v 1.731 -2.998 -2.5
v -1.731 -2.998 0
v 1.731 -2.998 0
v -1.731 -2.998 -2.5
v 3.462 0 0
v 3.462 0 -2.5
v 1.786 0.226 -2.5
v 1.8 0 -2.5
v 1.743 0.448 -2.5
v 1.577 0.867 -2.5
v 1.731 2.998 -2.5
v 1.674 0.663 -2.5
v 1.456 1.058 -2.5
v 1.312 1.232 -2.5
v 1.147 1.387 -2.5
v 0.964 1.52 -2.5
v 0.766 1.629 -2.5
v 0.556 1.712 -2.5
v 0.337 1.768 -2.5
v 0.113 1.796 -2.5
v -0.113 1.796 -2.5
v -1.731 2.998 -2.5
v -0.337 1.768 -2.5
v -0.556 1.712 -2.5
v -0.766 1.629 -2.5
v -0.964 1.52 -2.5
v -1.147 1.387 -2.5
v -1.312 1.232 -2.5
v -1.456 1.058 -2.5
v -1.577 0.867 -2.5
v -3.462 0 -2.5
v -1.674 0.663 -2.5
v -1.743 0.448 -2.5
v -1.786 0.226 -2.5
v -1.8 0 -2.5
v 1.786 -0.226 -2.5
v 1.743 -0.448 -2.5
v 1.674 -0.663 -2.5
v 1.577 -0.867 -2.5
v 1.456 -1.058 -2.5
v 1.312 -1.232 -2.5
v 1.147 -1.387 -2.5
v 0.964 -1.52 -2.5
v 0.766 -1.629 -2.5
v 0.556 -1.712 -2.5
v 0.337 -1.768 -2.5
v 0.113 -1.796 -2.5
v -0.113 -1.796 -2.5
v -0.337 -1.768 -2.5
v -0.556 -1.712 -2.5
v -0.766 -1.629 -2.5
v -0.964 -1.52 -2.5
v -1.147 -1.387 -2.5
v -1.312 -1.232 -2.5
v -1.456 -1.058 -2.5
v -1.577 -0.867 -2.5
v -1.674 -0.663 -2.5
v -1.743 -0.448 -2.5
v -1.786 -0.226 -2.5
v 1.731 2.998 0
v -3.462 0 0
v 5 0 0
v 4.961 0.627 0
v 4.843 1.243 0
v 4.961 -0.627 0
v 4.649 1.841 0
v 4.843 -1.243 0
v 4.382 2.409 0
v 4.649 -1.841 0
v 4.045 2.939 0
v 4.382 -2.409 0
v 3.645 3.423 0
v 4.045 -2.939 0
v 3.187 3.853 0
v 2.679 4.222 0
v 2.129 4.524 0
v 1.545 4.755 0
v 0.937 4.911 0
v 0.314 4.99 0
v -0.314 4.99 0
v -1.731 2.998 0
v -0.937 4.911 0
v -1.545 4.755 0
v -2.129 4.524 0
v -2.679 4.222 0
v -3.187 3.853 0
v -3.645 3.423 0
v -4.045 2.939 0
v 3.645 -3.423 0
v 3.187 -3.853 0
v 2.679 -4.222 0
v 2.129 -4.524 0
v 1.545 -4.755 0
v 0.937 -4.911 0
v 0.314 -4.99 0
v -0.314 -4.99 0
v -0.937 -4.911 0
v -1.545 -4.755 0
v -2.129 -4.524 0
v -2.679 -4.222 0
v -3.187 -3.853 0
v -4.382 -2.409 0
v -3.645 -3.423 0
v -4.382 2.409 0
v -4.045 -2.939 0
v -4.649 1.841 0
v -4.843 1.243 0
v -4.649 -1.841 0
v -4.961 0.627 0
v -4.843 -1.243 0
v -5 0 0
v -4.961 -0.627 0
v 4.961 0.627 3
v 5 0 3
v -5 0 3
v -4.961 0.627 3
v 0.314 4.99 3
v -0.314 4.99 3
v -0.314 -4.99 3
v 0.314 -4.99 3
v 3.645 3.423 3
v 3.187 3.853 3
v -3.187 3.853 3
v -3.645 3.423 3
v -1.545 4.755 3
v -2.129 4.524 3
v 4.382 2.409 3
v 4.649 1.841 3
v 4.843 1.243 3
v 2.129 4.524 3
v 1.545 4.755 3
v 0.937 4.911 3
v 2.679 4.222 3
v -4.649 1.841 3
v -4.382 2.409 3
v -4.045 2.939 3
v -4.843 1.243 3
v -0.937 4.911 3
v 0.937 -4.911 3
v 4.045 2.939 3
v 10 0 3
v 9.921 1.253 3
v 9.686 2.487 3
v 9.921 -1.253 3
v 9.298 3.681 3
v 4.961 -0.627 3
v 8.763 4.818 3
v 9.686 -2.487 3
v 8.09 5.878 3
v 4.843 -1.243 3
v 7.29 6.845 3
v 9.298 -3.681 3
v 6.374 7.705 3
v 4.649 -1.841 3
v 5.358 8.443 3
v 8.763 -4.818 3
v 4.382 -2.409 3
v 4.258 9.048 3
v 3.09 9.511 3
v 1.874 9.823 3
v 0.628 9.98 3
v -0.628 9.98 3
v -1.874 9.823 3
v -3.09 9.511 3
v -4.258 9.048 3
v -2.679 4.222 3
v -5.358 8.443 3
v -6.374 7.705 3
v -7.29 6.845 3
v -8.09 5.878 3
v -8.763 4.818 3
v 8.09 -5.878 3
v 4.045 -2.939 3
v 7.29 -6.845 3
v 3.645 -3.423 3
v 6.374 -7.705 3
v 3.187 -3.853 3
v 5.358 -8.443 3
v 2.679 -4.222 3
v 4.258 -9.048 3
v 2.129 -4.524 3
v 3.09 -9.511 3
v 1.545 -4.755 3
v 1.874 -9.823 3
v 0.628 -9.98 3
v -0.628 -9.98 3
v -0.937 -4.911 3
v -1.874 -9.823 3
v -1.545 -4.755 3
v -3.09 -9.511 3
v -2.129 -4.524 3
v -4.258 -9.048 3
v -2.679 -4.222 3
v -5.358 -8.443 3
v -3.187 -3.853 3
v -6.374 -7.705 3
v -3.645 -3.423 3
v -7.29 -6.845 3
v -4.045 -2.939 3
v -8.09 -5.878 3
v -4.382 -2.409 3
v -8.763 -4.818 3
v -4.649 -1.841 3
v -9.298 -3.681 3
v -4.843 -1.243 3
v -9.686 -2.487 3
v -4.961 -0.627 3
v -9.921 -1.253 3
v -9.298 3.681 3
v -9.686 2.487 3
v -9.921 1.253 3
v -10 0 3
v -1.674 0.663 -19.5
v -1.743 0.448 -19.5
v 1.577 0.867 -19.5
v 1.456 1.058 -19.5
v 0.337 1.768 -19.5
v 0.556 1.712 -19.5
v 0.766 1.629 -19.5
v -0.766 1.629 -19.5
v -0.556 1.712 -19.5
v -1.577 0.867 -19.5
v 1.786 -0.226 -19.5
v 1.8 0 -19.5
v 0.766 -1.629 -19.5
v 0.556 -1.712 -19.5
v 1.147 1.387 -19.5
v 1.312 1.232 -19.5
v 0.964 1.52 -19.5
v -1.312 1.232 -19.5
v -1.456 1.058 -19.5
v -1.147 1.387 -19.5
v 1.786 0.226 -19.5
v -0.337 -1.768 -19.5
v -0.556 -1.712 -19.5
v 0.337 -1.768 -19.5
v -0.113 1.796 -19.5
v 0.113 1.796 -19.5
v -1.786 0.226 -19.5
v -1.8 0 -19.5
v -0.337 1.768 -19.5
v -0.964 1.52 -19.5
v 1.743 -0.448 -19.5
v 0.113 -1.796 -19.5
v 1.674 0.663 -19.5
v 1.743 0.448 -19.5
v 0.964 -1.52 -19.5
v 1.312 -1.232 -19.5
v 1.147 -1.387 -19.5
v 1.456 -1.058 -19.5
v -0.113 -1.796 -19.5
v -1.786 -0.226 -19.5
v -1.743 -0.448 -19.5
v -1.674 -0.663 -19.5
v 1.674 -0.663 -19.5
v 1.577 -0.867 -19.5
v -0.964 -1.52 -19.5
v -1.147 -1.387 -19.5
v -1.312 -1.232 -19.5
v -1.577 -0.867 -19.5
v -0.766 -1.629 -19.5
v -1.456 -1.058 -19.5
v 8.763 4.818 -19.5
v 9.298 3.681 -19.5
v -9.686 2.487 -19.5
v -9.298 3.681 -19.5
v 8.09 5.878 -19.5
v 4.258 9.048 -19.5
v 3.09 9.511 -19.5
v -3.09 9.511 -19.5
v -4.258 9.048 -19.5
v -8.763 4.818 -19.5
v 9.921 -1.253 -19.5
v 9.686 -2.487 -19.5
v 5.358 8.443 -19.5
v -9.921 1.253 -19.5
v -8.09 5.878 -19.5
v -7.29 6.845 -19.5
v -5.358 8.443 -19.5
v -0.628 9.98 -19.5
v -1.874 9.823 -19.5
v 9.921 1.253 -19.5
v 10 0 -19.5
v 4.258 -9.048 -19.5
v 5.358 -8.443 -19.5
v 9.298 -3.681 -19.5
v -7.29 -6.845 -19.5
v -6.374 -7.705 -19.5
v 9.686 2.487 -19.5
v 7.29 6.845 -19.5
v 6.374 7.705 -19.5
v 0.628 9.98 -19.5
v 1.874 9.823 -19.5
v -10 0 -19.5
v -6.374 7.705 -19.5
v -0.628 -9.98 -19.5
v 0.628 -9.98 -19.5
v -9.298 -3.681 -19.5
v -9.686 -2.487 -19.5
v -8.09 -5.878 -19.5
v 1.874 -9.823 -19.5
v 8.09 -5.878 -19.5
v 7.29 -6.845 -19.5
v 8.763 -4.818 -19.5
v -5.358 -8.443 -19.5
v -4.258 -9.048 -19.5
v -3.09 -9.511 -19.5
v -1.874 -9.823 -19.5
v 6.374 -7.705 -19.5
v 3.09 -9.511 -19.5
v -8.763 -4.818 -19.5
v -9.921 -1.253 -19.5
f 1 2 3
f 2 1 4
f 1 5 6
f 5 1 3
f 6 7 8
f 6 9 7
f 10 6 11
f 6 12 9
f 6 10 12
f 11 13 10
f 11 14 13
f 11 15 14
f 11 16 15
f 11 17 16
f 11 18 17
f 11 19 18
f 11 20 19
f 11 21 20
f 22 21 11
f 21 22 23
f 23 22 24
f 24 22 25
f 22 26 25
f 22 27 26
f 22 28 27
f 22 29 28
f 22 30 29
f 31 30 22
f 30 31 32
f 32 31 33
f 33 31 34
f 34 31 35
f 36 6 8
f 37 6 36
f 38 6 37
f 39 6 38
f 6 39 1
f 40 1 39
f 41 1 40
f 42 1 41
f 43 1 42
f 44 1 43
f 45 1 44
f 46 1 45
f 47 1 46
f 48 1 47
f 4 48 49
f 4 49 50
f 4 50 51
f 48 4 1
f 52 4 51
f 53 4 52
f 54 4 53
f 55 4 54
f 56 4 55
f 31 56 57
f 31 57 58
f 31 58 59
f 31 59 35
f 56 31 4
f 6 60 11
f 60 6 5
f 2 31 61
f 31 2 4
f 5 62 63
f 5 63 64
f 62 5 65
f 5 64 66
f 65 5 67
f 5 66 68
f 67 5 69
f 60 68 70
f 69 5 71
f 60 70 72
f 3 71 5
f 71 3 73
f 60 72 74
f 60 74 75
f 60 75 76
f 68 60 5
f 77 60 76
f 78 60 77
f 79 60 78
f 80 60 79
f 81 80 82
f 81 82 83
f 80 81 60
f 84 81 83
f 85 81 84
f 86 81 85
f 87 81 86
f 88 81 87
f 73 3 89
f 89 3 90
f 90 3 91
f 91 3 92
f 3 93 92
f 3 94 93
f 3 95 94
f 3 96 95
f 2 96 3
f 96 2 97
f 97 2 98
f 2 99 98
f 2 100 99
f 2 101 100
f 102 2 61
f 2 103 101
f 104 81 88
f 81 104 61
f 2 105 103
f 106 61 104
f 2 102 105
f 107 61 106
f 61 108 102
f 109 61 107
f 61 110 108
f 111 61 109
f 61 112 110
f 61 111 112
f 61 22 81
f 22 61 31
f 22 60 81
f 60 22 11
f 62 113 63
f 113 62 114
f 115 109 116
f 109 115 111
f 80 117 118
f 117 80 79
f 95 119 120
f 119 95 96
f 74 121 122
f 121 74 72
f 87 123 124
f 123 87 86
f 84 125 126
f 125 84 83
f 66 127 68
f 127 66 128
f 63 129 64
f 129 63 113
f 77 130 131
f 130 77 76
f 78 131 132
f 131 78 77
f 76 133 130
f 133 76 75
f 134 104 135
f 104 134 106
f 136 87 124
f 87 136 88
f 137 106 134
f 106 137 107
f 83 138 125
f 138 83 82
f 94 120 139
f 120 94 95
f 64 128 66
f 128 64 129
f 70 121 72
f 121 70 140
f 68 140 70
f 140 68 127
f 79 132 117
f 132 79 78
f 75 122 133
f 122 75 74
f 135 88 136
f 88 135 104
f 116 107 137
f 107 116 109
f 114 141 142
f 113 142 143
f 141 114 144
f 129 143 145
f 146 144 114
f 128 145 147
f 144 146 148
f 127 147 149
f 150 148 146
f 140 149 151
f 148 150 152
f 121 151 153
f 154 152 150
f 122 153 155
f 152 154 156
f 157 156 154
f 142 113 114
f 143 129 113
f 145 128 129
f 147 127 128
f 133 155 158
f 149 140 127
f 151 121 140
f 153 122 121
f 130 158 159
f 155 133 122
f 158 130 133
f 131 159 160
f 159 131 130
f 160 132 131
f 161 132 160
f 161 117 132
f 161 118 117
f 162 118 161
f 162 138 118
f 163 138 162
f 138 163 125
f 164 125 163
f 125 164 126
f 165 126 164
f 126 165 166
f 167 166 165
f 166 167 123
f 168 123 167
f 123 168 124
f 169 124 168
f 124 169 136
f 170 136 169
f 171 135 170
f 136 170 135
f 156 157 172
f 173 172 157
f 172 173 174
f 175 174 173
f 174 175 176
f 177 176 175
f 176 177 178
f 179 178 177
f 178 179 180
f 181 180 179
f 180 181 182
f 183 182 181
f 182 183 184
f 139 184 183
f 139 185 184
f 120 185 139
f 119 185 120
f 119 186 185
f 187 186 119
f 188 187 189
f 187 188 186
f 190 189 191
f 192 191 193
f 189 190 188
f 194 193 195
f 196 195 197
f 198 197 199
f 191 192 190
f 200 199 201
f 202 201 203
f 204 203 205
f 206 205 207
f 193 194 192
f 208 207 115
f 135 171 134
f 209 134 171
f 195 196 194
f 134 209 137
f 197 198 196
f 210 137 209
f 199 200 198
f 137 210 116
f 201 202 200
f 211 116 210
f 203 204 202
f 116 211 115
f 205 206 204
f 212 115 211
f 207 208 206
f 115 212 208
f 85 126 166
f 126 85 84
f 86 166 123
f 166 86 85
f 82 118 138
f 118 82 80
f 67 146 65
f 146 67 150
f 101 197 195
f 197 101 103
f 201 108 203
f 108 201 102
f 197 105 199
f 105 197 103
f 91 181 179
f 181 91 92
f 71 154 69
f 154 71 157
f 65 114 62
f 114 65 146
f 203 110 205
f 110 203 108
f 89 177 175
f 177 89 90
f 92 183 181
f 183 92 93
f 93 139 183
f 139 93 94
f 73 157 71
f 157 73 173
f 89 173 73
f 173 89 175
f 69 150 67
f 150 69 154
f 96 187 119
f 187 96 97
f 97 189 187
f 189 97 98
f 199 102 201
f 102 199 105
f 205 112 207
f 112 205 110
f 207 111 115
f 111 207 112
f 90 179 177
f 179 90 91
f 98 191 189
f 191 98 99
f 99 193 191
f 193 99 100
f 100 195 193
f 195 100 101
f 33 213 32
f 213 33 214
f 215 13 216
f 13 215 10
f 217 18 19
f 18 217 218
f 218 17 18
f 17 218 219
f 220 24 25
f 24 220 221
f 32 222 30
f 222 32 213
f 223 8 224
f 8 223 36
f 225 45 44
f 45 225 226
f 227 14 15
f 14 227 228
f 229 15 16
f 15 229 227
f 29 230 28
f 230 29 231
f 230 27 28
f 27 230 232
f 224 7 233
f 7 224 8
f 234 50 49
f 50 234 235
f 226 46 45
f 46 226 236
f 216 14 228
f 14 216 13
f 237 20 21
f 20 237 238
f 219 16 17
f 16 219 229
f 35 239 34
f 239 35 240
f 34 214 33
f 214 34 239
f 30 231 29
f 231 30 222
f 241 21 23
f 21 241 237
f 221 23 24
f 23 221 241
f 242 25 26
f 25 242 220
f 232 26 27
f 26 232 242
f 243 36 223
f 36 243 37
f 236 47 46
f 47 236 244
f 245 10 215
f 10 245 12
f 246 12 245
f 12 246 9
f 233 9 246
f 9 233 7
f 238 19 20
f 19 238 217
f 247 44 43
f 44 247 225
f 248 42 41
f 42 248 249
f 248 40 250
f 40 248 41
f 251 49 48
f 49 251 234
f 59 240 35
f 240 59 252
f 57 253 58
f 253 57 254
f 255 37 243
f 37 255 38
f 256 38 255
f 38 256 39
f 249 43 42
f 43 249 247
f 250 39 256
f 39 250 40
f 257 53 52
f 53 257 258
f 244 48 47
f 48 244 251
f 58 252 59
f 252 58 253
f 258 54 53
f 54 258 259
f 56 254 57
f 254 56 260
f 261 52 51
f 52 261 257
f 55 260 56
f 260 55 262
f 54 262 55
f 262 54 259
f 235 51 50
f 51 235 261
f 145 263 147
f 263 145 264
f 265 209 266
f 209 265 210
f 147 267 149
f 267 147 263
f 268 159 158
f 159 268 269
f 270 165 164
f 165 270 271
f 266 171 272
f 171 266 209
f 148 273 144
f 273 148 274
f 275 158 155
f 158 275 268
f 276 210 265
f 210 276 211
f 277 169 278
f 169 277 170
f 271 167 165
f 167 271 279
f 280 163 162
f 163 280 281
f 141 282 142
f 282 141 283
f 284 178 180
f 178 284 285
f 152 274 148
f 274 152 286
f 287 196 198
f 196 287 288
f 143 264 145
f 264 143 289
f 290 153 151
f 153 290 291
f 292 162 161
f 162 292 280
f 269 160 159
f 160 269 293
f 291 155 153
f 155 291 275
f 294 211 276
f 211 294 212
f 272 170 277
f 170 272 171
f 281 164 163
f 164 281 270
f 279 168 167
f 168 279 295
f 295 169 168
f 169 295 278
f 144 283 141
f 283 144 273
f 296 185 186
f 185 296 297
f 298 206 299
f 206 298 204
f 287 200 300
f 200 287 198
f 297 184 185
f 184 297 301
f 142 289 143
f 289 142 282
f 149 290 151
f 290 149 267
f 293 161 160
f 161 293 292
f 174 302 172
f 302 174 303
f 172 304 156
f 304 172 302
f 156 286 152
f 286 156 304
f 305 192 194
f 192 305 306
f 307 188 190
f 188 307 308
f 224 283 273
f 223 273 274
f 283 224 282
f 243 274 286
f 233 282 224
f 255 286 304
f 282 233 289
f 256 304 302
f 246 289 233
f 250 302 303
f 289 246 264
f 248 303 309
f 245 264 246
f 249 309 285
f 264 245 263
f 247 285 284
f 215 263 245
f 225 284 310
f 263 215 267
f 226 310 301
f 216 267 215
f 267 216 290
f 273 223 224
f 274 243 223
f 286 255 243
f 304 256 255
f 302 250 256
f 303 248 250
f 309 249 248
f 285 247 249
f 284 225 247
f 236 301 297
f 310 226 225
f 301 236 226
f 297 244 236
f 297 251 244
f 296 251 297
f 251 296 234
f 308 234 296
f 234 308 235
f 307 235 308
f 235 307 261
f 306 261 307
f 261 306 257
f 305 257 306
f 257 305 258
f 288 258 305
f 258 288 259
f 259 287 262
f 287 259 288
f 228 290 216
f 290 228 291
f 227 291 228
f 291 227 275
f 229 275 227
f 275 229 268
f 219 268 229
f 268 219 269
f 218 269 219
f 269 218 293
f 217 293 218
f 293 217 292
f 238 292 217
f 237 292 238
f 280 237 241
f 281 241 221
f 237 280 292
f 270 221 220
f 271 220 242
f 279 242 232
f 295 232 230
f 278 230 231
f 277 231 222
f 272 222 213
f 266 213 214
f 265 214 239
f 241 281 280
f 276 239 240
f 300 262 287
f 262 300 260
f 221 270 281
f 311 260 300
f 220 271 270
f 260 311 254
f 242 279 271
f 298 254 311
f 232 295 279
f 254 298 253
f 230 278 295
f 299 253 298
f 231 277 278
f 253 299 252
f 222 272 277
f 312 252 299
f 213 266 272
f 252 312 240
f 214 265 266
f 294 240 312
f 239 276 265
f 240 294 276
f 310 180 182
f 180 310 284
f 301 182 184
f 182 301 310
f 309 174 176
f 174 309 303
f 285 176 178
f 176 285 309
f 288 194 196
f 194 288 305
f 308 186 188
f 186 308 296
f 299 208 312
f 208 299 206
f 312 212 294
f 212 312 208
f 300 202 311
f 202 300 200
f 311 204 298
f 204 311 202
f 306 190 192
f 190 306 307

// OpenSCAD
$fn = 50;

difference() {
	union() {
		translate(v = [0, 0, -19.5]) {
			cylinder(h = 22.5, r = 10.0);
		}
	}
	union() {
		translate(v = [0, 0, 0]) {
			rotate(a = [0, 0, 0]) {
				difference() {
					union() {
						translate(v = [0, 0, -2.5]) {
							linear_extrude(height = 2.5) {
								polygon(points = [[3.4619999999999997, 0.0], [1.7310000000000003, 2.9981799479017264], [-1.7309999999999992, 2.9981799479017264], [-3.4619999999999997, 4.2397272186481365e-16], [-1.7310000000000014, -2.998179947901726], [1.7309999999999977, -2.9981799479017277]]);
							}
						}
					}
					union();
				}
			}
		}
		#cylinder(h = 3, r = 5.0);
		#translate(v = [0, 0, -100.0]) {
			cylinder(h = 200, r = 1.8);
		}
	}
}
